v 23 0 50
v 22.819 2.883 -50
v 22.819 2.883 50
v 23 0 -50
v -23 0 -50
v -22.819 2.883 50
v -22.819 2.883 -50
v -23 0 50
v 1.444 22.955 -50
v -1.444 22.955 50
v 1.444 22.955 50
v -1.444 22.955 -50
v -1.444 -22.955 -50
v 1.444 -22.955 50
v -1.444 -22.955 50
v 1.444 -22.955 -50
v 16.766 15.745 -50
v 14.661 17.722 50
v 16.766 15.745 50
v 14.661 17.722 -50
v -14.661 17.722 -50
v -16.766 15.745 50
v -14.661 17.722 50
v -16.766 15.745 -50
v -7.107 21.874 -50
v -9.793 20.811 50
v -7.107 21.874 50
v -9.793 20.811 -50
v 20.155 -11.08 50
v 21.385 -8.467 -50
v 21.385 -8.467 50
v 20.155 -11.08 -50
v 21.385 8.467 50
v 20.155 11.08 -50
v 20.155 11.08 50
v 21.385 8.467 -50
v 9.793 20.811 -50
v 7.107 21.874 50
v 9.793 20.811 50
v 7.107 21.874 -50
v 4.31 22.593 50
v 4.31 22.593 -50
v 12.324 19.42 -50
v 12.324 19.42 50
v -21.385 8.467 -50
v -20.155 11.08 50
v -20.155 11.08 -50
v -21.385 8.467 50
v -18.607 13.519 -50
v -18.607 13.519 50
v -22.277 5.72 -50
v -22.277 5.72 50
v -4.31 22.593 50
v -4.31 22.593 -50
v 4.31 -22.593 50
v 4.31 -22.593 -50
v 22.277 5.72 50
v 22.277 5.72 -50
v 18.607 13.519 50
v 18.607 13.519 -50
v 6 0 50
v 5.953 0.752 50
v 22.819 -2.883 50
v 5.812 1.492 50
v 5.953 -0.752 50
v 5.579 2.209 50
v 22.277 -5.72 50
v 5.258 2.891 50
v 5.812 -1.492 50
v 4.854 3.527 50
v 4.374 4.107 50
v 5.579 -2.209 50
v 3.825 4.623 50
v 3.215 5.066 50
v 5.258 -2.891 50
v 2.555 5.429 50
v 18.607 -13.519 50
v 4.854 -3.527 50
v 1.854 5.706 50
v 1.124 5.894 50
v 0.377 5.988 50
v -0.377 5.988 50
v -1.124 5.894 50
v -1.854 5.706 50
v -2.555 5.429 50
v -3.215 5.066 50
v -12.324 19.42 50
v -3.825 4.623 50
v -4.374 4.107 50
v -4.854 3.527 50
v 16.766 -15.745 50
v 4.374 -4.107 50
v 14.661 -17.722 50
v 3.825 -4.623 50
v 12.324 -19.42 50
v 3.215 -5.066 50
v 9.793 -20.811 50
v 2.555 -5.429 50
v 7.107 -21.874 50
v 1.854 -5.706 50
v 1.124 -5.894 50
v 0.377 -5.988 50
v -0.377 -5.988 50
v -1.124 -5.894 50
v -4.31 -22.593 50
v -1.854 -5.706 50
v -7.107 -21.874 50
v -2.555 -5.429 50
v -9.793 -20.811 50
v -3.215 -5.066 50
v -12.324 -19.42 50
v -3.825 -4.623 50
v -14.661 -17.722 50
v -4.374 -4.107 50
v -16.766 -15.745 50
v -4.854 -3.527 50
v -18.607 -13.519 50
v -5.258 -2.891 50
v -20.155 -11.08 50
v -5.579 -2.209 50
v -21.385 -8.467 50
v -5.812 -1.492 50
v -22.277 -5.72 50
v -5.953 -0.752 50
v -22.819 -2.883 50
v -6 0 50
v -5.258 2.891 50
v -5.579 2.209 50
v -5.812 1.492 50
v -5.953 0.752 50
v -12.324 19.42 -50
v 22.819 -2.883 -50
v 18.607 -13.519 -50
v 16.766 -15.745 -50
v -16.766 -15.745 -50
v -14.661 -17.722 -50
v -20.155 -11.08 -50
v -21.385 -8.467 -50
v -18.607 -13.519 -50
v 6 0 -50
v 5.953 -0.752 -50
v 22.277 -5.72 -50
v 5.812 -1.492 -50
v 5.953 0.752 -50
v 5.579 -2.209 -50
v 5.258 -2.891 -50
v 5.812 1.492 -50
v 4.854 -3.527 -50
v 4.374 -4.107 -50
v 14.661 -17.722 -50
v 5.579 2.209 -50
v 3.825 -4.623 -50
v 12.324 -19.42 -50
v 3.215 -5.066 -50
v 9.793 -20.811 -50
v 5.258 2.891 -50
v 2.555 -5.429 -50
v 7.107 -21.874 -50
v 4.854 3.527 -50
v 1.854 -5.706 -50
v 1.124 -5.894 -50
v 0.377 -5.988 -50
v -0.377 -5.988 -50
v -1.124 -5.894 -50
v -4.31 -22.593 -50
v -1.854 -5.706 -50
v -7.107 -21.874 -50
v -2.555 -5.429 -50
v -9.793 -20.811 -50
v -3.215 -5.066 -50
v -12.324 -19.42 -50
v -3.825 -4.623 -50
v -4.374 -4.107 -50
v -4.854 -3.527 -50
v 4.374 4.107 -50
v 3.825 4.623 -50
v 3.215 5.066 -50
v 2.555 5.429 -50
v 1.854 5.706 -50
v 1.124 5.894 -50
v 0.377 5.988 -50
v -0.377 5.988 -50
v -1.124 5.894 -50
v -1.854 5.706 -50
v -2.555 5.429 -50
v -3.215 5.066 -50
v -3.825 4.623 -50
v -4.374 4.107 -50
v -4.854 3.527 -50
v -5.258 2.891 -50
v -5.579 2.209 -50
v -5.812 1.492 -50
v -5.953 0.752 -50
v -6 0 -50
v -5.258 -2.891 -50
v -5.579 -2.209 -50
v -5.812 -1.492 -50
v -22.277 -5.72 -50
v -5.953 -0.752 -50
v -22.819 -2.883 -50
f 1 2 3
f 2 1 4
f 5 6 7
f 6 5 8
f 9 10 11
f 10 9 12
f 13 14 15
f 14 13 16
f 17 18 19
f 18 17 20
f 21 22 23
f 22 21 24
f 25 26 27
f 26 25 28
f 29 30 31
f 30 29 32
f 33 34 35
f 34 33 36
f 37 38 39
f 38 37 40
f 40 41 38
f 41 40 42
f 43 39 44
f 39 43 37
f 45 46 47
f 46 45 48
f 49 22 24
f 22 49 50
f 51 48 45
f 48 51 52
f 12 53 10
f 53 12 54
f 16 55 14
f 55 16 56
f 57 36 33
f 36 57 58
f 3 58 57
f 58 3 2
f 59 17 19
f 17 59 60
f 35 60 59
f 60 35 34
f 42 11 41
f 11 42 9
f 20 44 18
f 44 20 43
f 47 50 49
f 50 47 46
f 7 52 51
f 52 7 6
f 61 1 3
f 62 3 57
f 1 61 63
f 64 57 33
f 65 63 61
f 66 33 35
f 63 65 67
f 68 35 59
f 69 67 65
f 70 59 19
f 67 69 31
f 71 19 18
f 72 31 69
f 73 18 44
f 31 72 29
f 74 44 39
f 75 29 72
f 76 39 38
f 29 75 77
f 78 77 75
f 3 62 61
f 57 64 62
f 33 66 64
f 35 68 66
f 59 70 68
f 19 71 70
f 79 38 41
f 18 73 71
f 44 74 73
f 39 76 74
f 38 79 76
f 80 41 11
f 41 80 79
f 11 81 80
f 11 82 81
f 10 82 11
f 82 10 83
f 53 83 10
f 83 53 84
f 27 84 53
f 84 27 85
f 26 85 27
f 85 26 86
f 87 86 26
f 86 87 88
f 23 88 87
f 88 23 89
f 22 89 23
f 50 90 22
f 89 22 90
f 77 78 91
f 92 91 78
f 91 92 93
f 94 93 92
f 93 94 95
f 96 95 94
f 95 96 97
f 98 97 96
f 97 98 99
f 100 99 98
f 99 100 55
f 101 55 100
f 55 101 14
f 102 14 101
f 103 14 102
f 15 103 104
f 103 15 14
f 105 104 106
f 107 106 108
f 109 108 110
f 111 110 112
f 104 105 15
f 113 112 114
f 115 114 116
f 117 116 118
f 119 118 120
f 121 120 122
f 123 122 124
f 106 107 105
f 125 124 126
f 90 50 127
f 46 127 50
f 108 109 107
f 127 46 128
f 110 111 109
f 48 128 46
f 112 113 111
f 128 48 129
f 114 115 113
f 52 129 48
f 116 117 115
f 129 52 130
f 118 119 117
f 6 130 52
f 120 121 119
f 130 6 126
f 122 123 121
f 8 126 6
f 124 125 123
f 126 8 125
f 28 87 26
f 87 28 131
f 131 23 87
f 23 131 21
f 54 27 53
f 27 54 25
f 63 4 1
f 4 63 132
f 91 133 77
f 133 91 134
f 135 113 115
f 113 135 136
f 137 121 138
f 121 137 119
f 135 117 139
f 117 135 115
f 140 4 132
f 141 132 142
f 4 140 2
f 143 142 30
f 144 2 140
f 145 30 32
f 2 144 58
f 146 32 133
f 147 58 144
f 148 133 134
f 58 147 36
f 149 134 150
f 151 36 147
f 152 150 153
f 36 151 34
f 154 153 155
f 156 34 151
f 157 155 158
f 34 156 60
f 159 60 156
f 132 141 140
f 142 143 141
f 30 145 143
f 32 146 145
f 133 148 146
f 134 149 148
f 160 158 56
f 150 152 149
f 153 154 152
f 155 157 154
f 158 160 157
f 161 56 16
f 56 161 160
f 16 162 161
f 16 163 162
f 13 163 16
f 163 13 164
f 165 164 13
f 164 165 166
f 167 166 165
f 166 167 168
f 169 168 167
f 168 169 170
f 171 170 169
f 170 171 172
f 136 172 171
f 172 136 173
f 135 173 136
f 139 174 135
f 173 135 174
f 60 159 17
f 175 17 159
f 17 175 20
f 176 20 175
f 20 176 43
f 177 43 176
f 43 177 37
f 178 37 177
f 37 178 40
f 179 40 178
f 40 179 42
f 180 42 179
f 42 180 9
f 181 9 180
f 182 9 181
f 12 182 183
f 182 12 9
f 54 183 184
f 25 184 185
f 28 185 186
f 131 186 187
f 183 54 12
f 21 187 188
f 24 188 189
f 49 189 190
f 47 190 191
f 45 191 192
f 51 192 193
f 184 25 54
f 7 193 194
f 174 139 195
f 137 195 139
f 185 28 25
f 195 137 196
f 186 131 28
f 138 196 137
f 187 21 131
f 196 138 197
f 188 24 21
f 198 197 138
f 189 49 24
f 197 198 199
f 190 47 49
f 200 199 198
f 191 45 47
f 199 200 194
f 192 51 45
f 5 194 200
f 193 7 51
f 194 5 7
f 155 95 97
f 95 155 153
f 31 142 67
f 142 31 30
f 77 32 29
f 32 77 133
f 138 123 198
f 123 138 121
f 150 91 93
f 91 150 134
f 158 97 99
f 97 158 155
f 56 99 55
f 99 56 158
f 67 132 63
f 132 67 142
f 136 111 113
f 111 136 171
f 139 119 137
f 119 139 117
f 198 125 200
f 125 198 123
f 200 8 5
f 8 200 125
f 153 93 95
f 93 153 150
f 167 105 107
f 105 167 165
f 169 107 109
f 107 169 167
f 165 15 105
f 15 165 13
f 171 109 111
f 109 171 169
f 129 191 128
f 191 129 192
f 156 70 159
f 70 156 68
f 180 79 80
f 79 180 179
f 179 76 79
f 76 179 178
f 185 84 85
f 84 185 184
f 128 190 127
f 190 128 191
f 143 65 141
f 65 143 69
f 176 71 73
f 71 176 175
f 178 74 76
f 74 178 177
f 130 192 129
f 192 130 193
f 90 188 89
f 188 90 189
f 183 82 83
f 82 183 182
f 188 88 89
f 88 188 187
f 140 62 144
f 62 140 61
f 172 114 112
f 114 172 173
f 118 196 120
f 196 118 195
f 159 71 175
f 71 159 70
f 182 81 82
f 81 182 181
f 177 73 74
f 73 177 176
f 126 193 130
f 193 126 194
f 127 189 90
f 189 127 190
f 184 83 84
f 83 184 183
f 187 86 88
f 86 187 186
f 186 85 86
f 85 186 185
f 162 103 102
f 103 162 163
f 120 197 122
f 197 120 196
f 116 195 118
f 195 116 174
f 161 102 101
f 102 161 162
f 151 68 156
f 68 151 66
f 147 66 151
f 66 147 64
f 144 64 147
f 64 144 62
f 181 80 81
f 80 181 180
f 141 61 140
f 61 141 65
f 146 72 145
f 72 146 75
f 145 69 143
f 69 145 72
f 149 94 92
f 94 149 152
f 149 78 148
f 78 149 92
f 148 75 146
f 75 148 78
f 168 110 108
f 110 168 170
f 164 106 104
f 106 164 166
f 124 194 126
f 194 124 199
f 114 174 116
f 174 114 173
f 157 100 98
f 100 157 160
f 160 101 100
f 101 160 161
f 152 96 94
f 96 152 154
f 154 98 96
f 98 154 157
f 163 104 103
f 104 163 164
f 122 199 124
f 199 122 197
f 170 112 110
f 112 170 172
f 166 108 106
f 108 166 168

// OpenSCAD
$fn = 50;


difference() {
	union() {
		translate(v = [0, 0, -50.0000000000]) {
			cylinder(h = 100, r = 23.0000000000);
		}
	}
	union() {
		translate(v = [0, 0, -100.0000000000]) {
			cylinder(h = 200, r = 6);
		}
	}
}
